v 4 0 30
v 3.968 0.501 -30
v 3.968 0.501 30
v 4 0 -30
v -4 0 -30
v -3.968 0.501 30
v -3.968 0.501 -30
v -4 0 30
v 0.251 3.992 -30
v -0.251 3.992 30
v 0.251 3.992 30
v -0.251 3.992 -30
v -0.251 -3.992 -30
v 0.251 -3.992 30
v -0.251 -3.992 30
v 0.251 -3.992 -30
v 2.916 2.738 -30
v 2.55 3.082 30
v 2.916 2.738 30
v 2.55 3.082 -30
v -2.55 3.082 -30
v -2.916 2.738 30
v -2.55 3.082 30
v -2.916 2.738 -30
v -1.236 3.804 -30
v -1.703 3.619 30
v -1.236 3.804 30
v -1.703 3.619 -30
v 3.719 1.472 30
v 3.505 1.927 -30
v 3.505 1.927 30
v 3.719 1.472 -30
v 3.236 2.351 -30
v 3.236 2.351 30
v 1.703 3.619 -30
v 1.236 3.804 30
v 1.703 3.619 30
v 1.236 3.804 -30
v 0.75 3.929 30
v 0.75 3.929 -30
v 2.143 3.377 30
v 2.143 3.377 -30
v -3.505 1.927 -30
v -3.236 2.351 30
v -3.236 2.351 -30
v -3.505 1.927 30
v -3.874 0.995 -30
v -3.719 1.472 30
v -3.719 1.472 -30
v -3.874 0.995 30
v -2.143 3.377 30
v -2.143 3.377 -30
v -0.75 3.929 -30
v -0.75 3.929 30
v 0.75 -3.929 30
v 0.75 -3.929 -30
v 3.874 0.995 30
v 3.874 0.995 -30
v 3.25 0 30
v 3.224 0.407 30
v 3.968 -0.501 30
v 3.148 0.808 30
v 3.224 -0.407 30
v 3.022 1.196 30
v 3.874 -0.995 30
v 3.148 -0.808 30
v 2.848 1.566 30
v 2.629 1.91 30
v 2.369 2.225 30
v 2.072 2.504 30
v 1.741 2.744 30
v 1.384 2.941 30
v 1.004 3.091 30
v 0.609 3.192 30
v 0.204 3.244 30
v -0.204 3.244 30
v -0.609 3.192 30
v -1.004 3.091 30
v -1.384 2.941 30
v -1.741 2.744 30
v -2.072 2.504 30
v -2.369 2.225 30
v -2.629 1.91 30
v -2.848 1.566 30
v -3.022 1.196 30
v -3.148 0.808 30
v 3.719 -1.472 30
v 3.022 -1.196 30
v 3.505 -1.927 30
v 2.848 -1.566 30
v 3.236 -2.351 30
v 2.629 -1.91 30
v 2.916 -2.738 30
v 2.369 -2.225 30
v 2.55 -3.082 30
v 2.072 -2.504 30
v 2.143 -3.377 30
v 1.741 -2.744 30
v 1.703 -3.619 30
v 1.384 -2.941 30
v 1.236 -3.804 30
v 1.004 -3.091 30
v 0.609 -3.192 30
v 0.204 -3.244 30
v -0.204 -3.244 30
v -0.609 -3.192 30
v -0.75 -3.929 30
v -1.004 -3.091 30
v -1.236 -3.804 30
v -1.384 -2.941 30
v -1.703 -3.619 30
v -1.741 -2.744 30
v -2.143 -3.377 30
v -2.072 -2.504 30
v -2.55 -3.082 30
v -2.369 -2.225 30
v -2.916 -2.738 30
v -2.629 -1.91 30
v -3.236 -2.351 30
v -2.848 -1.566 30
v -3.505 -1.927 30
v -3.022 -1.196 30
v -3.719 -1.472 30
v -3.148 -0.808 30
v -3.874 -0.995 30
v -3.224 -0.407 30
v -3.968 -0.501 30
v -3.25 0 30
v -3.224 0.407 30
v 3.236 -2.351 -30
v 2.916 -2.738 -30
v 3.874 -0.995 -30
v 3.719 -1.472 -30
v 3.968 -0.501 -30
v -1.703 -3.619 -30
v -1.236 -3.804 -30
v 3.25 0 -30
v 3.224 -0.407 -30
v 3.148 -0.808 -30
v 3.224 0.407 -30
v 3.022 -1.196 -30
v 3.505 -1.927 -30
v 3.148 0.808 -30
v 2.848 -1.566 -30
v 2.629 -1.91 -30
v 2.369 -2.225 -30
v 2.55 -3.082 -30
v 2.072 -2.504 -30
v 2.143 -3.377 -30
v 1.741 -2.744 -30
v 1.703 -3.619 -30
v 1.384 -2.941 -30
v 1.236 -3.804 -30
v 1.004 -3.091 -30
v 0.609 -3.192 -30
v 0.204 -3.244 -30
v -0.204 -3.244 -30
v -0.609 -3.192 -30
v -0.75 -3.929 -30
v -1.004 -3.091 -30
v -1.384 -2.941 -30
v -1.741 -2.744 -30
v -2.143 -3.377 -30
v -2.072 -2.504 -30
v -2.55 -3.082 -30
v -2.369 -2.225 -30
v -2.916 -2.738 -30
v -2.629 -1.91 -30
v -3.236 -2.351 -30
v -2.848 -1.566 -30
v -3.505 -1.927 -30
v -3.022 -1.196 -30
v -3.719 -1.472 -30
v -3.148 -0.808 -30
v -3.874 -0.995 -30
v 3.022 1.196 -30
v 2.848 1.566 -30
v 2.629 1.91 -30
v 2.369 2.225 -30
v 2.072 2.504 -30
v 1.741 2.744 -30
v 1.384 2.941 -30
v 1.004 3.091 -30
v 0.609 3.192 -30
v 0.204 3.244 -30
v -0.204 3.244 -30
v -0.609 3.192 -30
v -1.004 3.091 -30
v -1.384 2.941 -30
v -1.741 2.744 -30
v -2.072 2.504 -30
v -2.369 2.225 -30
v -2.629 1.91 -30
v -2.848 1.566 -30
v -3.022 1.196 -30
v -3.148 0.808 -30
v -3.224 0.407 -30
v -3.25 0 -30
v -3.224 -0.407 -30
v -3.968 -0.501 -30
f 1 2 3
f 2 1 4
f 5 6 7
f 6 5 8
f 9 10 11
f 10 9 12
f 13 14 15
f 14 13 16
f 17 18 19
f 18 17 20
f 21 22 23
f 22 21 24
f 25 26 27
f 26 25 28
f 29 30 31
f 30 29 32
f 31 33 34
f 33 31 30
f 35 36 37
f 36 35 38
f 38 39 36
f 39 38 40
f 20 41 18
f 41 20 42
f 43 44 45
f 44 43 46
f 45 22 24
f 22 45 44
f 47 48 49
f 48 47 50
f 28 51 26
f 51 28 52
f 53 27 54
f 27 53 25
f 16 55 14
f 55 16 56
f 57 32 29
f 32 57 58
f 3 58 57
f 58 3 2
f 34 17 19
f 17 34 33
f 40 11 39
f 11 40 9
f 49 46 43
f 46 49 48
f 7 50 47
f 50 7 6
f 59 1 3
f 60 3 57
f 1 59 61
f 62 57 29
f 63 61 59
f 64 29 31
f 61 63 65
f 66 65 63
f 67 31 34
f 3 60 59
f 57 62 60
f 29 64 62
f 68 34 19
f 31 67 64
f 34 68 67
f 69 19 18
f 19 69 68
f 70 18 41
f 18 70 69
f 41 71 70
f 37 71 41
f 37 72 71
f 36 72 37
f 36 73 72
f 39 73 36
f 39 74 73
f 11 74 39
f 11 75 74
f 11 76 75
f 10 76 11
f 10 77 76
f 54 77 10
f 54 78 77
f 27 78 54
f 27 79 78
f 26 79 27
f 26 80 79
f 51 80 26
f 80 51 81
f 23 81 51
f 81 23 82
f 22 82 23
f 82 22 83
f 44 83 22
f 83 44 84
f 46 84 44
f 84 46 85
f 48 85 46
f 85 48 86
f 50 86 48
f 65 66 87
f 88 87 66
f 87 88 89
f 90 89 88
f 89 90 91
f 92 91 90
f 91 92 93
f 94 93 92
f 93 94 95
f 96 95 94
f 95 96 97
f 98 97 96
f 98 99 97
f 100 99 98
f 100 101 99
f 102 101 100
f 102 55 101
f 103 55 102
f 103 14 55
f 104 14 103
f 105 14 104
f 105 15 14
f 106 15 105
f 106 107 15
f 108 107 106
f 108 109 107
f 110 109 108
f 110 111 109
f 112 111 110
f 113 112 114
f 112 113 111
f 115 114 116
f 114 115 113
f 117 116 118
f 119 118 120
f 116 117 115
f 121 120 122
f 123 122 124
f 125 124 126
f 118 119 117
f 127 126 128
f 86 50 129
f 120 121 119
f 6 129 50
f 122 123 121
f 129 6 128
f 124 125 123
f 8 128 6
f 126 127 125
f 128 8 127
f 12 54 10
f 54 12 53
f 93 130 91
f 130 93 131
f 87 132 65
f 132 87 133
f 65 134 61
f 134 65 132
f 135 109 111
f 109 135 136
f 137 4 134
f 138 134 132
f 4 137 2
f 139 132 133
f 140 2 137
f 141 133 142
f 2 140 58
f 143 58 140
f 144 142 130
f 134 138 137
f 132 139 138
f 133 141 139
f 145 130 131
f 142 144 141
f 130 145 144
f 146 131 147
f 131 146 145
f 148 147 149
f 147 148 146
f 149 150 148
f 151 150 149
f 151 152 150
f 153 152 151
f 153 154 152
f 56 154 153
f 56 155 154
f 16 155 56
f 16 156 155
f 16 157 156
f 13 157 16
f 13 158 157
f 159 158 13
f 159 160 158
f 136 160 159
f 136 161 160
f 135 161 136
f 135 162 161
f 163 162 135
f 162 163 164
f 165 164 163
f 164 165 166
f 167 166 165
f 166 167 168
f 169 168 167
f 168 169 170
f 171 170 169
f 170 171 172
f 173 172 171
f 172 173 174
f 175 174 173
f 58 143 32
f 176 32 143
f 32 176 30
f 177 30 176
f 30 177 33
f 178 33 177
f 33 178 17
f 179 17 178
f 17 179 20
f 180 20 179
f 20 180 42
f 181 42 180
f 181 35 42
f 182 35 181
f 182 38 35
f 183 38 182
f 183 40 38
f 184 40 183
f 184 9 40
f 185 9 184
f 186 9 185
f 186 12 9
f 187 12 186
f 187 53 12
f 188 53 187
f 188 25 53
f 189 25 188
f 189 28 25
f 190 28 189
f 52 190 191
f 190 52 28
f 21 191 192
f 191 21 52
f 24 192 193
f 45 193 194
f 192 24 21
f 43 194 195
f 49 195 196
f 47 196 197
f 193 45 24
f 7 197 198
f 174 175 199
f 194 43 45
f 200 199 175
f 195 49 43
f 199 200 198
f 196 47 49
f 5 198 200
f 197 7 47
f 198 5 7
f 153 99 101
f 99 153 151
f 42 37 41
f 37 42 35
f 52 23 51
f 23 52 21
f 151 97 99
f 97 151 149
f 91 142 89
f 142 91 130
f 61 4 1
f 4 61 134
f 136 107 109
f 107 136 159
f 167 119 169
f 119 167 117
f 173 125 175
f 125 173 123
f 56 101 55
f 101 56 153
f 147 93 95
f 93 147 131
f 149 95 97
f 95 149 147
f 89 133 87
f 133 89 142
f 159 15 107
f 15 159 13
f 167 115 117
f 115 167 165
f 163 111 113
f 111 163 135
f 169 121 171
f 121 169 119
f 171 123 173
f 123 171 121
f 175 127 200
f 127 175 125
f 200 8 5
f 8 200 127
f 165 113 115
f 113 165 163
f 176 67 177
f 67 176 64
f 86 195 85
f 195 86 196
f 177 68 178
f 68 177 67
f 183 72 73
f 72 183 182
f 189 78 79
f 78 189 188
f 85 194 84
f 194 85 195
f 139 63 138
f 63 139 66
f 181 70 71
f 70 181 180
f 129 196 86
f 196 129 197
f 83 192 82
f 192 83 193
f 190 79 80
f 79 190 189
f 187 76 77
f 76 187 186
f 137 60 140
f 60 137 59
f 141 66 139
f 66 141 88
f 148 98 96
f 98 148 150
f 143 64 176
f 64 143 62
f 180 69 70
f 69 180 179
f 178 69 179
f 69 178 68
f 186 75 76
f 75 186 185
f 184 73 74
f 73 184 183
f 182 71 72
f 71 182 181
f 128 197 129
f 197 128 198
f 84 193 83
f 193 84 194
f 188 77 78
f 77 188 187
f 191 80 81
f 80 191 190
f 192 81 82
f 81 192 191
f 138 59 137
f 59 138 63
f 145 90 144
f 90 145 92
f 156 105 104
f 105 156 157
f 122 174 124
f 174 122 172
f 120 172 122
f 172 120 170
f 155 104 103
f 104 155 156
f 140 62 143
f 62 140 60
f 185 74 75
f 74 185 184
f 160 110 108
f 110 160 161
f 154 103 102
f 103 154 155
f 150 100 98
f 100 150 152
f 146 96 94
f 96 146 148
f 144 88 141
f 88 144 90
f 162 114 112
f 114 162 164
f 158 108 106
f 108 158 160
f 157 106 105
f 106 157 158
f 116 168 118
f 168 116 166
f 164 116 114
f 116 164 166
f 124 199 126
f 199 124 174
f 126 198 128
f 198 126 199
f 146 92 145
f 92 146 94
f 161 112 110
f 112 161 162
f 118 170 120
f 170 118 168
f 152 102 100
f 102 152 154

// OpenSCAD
$fn = 50;


difference() {
	union() {
		translate(v = [0, 0, -30.0000000000]) {
			cylinder(h = 60, r = 4.0000000000);
		}
	}
	union() {
		translate(v = [0, 0, -100.0000000000]) {
			cylinder(h = 200, r = 3.2500000000);
		}
	}
}
